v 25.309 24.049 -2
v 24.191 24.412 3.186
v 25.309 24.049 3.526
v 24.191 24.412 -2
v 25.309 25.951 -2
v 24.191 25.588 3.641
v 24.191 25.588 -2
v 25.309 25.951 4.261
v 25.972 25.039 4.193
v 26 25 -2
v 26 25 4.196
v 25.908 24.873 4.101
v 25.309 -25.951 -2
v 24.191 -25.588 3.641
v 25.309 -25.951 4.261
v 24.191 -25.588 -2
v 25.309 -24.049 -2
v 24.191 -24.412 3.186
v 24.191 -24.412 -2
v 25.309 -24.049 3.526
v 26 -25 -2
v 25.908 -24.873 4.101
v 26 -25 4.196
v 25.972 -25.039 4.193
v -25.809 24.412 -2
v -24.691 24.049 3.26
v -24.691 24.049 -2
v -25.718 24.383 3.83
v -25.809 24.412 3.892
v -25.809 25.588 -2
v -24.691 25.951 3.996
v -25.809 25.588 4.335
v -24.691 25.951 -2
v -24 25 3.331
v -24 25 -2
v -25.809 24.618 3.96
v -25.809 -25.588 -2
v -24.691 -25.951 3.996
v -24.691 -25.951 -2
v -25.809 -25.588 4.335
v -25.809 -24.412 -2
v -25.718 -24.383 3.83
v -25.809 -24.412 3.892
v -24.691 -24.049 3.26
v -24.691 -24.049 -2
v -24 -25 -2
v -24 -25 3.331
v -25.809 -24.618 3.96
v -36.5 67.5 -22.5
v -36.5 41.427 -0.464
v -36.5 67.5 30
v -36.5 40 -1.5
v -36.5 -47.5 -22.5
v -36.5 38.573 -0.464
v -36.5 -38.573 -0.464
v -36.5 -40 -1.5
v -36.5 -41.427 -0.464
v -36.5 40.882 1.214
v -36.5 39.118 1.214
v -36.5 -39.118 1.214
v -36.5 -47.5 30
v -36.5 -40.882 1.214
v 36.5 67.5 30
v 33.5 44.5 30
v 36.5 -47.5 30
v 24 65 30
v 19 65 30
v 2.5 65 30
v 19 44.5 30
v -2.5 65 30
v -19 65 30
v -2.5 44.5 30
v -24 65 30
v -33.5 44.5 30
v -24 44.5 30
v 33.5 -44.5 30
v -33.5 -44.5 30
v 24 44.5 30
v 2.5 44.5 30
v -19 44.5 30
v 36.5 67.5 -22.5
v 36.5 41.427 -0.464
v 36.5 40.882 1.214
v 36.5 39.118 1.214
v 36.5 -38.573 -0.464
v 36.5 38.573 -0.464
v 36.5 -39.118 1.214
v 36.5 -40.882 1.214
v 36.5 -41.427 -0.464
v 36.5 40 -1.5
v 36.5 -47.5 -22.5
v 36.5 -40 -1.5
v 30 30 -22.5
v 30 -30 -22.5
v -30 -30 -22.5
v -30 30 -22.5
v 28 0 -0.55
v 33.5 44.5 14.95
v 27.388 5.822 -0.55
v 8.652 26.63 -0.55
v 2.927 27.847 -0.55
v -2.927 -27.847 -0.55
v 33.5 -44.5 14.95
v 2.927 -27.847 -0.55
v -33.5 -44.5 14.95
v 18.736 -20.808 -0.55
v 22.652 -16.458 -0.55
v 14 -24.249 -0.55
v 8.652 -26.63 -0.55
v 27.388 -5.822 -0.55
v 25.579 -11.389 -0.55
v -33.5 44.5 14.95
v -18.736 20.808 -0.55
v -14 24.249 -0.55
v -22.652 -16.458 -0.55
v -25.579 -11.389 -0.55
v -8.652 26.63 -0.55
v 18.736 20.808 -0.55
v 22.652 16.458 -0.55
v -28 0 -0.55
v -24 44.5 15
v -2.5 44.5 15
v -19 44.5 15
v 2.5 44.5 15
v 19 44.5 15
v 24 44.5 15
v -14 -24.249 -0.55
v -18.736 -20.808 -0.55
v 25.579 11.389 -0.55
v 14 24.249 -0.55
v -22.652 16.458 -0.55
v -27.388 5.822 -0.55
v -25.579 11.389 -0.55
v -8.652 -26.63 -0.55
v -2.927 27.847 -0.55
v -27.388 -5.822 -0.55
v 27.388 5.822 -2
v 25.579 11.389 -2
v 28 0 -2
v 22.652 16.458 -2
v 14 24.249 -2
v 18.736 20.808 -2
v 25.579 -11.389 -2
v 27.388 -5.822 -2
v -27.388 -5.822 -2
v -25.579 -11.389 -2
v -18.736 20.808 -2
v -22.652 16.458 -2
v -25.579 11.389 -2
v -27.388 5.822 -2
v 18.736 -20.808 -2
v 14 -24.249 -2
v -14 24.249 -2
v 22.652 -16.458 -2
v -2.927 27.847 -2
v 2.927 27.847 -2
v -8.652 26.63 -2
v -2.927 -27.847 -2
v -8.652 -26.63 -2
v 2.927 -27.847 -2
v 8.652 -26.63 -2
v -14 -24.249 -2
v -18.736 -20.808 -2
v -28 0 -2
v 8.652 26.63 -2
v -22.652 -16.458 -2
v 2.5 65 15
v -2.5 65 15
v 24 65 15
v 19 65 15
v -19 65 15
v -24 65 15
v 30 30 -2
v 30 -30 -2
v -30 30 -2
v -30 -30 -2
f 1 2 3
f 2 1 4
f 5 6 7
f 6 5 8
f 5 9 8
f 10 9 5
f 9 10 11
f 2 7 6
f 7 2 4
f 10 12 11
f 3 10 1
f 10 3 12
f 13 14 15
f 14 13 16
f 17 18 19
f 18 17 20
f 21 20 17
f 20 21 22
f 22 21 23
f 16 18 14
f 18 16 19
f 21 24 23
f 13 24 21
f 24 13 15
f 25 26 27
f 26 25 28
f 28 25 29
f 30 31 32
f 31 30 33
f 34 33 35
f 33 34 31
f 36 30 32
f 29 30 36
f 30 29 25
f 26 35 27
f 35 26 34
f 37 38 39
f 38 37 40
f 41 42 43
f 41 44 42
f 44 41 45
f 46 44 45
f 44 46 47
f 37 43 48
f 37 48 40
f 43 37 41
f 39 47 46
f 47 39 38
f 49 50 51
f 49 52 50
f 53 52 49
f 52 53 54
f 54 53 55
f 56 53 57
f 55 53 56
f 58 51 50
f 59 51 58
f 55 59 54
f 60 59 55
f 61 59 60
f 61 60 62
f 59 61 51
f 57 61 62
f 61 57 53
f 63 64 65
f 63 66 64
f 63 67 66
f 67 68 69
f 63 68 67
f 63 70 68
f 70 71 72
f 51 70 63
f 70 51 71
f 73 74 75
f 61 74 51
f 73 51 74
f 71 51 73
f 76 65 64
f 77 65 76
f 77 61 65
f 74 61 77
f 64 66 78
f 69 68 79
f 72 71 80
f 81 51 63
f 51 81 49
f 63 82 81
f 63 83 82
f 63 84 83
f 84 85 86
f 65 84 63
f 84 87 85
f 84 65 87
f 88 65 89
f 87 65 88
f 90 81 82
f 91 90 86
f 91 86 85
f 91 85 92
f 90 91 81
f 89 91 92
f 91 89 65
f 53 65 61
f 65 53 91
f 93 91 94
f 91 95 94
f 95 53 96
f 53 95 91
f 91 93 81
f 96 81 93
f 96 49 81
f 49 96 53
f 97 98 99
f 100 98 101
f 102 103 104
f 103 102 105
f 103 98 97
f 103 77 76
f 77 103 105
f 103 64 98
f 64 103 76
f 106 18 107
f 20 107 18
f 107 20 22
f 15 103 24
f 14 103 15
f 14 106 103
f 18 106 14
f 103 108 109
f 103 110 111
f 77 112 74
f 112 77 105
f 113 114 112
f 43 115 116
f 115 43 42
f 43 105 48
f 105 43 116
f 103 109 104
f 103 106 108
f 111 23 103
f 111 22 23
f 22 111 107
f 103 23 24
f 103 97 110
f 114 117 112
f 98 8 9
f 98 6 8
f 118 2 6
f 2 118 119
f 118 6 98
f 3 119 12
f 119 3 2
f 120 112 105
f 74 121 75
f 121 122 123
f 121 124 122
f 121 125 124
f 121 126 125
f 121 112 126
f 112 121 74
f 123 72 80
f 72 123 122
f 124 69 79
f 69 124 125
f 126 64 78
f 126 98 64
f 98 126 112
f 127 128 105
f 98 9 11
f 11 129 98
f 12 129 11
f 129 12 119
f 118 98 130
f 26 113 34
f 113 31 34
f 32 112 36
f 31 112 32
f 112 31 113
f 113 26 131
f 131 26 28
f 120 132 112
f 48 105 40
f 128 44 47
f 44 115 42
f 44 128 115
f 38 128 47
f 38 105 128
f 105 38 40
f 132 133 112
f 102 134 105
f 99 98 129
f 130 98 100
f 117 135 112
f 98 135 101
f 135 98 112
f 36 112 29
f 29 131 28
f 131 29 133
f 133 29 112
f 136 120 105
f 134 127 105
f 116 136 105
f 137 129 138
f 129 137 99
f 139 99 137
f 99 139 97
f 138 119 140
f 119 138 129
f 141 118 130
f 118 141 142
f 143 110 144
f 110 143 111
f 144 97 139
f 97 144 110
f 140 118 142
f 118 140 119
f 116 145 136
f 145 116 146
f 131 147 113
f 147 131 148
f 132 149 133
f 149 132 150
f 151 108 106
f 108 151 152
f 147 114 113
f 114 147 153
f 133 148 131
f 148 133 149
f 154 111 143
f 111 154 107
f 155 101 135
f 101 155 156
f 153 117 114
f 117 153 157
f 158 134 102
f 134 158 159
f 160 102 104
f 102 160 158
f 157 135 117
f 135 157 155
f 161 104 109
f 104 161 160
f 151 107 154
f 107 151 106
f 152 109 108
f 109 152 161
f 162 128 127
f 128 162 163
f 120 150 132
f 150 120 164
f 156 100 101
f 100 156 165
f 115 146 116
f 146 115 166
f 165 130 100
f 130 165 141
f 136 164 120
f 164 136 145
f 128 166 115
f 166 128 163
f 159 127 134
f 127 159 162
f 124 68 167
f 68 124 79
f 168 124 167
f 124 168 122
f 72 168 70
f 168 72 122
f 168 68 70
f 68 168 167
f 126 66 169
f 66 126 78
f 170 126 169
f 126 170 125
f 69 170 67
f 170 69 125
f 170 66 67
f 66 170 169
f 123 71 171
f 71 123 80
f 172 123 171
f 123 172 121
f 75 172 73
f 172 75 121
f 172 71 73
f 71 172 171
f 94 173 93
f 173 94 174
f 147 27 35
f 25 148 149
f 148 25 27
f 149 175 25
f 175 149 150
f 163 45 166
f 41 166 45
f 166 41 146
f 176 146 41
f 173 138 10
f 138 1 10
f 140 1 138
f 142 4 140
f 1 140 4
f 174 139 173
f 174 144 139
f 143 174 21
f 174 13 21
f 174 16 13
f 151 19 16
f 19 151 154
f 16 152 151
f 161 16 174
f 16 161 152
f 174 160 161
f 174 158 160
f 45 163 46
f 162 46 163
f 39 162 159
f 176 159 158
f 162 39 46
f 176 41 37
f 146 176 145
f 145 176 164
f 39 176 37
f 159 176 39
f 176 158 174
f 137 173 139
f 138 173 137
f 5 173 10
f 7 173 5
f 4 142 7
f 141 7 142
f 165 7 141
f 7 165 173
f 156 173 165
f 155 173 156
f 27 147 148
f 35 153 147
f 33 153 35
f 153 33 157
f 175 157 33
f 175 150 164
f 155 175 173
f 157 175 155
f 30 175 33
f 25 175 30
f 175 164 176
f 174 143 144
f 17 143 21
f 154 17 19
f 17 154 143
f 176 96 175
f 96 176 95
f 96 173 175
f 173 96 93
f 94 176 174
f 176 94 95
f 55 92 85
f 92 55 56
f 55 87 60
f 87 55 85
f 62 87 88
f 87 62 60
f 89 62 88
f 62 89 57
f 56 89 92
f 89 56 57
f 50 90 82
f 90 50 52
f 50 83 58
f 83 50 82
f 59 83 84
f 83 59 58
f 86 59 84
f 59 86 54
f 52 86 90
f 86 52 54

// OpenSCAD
/*
hull(){
cylinder(d=52,h=1,center=true);
translate([0,0,15])
cube([45+11*2,67+11*2,1],center=true);
}
*/

difference(){
    hull(){
        translate([0,10,0-15])
        cube([45+11*2+3*2,67+11*2+3*2+20,15],center=true);
        translate([0,10,15+15/2])
        cube([45+11*2+3*2,67+11*2+3*2+20,15],center=true);
    }
    hull(){
        cylinder(d=56,h=1.1,center=true);
        translate([0,0,15+15/2])
        cube([45+11*2,67+11*2,15.1],center=true);
    }
    cylinder(d=56,h=5,center=true);
    translate([0,45,37.5-13])
    cube([5,20+20,19],center=true);
    translate([21.5,45,37.5-13])
    cube([5,20+20,19],center=true);
    translate([-21.5,45,37.5-13])
    cube([5,20+20,19],center=true);

    translate([0,0,-15])
    cube([60,60,26],center=true);
    #translate([0,0,5]){
        translate([(30-5),(30-5),-50])
        cylinder(d=2,h=50);
        translate([(30-5),-(30-5),-50])
        cylinder(d=2,h=50);
        translate([-(30-5),(30-5),-50])
        cylinder(d=2,h=50);
        translate([-(30-5),-(30-5),-50])
        cylinder(d=2,h=50);
    }
    translate([-30,-40,0])
    rotate([0,90,0])
    cylinder(d=3,h=150,center=true);
    translate([-30,40,0])
    rotate([0,90,0])
    cylinder(d=3,h=150,center=true);
}
